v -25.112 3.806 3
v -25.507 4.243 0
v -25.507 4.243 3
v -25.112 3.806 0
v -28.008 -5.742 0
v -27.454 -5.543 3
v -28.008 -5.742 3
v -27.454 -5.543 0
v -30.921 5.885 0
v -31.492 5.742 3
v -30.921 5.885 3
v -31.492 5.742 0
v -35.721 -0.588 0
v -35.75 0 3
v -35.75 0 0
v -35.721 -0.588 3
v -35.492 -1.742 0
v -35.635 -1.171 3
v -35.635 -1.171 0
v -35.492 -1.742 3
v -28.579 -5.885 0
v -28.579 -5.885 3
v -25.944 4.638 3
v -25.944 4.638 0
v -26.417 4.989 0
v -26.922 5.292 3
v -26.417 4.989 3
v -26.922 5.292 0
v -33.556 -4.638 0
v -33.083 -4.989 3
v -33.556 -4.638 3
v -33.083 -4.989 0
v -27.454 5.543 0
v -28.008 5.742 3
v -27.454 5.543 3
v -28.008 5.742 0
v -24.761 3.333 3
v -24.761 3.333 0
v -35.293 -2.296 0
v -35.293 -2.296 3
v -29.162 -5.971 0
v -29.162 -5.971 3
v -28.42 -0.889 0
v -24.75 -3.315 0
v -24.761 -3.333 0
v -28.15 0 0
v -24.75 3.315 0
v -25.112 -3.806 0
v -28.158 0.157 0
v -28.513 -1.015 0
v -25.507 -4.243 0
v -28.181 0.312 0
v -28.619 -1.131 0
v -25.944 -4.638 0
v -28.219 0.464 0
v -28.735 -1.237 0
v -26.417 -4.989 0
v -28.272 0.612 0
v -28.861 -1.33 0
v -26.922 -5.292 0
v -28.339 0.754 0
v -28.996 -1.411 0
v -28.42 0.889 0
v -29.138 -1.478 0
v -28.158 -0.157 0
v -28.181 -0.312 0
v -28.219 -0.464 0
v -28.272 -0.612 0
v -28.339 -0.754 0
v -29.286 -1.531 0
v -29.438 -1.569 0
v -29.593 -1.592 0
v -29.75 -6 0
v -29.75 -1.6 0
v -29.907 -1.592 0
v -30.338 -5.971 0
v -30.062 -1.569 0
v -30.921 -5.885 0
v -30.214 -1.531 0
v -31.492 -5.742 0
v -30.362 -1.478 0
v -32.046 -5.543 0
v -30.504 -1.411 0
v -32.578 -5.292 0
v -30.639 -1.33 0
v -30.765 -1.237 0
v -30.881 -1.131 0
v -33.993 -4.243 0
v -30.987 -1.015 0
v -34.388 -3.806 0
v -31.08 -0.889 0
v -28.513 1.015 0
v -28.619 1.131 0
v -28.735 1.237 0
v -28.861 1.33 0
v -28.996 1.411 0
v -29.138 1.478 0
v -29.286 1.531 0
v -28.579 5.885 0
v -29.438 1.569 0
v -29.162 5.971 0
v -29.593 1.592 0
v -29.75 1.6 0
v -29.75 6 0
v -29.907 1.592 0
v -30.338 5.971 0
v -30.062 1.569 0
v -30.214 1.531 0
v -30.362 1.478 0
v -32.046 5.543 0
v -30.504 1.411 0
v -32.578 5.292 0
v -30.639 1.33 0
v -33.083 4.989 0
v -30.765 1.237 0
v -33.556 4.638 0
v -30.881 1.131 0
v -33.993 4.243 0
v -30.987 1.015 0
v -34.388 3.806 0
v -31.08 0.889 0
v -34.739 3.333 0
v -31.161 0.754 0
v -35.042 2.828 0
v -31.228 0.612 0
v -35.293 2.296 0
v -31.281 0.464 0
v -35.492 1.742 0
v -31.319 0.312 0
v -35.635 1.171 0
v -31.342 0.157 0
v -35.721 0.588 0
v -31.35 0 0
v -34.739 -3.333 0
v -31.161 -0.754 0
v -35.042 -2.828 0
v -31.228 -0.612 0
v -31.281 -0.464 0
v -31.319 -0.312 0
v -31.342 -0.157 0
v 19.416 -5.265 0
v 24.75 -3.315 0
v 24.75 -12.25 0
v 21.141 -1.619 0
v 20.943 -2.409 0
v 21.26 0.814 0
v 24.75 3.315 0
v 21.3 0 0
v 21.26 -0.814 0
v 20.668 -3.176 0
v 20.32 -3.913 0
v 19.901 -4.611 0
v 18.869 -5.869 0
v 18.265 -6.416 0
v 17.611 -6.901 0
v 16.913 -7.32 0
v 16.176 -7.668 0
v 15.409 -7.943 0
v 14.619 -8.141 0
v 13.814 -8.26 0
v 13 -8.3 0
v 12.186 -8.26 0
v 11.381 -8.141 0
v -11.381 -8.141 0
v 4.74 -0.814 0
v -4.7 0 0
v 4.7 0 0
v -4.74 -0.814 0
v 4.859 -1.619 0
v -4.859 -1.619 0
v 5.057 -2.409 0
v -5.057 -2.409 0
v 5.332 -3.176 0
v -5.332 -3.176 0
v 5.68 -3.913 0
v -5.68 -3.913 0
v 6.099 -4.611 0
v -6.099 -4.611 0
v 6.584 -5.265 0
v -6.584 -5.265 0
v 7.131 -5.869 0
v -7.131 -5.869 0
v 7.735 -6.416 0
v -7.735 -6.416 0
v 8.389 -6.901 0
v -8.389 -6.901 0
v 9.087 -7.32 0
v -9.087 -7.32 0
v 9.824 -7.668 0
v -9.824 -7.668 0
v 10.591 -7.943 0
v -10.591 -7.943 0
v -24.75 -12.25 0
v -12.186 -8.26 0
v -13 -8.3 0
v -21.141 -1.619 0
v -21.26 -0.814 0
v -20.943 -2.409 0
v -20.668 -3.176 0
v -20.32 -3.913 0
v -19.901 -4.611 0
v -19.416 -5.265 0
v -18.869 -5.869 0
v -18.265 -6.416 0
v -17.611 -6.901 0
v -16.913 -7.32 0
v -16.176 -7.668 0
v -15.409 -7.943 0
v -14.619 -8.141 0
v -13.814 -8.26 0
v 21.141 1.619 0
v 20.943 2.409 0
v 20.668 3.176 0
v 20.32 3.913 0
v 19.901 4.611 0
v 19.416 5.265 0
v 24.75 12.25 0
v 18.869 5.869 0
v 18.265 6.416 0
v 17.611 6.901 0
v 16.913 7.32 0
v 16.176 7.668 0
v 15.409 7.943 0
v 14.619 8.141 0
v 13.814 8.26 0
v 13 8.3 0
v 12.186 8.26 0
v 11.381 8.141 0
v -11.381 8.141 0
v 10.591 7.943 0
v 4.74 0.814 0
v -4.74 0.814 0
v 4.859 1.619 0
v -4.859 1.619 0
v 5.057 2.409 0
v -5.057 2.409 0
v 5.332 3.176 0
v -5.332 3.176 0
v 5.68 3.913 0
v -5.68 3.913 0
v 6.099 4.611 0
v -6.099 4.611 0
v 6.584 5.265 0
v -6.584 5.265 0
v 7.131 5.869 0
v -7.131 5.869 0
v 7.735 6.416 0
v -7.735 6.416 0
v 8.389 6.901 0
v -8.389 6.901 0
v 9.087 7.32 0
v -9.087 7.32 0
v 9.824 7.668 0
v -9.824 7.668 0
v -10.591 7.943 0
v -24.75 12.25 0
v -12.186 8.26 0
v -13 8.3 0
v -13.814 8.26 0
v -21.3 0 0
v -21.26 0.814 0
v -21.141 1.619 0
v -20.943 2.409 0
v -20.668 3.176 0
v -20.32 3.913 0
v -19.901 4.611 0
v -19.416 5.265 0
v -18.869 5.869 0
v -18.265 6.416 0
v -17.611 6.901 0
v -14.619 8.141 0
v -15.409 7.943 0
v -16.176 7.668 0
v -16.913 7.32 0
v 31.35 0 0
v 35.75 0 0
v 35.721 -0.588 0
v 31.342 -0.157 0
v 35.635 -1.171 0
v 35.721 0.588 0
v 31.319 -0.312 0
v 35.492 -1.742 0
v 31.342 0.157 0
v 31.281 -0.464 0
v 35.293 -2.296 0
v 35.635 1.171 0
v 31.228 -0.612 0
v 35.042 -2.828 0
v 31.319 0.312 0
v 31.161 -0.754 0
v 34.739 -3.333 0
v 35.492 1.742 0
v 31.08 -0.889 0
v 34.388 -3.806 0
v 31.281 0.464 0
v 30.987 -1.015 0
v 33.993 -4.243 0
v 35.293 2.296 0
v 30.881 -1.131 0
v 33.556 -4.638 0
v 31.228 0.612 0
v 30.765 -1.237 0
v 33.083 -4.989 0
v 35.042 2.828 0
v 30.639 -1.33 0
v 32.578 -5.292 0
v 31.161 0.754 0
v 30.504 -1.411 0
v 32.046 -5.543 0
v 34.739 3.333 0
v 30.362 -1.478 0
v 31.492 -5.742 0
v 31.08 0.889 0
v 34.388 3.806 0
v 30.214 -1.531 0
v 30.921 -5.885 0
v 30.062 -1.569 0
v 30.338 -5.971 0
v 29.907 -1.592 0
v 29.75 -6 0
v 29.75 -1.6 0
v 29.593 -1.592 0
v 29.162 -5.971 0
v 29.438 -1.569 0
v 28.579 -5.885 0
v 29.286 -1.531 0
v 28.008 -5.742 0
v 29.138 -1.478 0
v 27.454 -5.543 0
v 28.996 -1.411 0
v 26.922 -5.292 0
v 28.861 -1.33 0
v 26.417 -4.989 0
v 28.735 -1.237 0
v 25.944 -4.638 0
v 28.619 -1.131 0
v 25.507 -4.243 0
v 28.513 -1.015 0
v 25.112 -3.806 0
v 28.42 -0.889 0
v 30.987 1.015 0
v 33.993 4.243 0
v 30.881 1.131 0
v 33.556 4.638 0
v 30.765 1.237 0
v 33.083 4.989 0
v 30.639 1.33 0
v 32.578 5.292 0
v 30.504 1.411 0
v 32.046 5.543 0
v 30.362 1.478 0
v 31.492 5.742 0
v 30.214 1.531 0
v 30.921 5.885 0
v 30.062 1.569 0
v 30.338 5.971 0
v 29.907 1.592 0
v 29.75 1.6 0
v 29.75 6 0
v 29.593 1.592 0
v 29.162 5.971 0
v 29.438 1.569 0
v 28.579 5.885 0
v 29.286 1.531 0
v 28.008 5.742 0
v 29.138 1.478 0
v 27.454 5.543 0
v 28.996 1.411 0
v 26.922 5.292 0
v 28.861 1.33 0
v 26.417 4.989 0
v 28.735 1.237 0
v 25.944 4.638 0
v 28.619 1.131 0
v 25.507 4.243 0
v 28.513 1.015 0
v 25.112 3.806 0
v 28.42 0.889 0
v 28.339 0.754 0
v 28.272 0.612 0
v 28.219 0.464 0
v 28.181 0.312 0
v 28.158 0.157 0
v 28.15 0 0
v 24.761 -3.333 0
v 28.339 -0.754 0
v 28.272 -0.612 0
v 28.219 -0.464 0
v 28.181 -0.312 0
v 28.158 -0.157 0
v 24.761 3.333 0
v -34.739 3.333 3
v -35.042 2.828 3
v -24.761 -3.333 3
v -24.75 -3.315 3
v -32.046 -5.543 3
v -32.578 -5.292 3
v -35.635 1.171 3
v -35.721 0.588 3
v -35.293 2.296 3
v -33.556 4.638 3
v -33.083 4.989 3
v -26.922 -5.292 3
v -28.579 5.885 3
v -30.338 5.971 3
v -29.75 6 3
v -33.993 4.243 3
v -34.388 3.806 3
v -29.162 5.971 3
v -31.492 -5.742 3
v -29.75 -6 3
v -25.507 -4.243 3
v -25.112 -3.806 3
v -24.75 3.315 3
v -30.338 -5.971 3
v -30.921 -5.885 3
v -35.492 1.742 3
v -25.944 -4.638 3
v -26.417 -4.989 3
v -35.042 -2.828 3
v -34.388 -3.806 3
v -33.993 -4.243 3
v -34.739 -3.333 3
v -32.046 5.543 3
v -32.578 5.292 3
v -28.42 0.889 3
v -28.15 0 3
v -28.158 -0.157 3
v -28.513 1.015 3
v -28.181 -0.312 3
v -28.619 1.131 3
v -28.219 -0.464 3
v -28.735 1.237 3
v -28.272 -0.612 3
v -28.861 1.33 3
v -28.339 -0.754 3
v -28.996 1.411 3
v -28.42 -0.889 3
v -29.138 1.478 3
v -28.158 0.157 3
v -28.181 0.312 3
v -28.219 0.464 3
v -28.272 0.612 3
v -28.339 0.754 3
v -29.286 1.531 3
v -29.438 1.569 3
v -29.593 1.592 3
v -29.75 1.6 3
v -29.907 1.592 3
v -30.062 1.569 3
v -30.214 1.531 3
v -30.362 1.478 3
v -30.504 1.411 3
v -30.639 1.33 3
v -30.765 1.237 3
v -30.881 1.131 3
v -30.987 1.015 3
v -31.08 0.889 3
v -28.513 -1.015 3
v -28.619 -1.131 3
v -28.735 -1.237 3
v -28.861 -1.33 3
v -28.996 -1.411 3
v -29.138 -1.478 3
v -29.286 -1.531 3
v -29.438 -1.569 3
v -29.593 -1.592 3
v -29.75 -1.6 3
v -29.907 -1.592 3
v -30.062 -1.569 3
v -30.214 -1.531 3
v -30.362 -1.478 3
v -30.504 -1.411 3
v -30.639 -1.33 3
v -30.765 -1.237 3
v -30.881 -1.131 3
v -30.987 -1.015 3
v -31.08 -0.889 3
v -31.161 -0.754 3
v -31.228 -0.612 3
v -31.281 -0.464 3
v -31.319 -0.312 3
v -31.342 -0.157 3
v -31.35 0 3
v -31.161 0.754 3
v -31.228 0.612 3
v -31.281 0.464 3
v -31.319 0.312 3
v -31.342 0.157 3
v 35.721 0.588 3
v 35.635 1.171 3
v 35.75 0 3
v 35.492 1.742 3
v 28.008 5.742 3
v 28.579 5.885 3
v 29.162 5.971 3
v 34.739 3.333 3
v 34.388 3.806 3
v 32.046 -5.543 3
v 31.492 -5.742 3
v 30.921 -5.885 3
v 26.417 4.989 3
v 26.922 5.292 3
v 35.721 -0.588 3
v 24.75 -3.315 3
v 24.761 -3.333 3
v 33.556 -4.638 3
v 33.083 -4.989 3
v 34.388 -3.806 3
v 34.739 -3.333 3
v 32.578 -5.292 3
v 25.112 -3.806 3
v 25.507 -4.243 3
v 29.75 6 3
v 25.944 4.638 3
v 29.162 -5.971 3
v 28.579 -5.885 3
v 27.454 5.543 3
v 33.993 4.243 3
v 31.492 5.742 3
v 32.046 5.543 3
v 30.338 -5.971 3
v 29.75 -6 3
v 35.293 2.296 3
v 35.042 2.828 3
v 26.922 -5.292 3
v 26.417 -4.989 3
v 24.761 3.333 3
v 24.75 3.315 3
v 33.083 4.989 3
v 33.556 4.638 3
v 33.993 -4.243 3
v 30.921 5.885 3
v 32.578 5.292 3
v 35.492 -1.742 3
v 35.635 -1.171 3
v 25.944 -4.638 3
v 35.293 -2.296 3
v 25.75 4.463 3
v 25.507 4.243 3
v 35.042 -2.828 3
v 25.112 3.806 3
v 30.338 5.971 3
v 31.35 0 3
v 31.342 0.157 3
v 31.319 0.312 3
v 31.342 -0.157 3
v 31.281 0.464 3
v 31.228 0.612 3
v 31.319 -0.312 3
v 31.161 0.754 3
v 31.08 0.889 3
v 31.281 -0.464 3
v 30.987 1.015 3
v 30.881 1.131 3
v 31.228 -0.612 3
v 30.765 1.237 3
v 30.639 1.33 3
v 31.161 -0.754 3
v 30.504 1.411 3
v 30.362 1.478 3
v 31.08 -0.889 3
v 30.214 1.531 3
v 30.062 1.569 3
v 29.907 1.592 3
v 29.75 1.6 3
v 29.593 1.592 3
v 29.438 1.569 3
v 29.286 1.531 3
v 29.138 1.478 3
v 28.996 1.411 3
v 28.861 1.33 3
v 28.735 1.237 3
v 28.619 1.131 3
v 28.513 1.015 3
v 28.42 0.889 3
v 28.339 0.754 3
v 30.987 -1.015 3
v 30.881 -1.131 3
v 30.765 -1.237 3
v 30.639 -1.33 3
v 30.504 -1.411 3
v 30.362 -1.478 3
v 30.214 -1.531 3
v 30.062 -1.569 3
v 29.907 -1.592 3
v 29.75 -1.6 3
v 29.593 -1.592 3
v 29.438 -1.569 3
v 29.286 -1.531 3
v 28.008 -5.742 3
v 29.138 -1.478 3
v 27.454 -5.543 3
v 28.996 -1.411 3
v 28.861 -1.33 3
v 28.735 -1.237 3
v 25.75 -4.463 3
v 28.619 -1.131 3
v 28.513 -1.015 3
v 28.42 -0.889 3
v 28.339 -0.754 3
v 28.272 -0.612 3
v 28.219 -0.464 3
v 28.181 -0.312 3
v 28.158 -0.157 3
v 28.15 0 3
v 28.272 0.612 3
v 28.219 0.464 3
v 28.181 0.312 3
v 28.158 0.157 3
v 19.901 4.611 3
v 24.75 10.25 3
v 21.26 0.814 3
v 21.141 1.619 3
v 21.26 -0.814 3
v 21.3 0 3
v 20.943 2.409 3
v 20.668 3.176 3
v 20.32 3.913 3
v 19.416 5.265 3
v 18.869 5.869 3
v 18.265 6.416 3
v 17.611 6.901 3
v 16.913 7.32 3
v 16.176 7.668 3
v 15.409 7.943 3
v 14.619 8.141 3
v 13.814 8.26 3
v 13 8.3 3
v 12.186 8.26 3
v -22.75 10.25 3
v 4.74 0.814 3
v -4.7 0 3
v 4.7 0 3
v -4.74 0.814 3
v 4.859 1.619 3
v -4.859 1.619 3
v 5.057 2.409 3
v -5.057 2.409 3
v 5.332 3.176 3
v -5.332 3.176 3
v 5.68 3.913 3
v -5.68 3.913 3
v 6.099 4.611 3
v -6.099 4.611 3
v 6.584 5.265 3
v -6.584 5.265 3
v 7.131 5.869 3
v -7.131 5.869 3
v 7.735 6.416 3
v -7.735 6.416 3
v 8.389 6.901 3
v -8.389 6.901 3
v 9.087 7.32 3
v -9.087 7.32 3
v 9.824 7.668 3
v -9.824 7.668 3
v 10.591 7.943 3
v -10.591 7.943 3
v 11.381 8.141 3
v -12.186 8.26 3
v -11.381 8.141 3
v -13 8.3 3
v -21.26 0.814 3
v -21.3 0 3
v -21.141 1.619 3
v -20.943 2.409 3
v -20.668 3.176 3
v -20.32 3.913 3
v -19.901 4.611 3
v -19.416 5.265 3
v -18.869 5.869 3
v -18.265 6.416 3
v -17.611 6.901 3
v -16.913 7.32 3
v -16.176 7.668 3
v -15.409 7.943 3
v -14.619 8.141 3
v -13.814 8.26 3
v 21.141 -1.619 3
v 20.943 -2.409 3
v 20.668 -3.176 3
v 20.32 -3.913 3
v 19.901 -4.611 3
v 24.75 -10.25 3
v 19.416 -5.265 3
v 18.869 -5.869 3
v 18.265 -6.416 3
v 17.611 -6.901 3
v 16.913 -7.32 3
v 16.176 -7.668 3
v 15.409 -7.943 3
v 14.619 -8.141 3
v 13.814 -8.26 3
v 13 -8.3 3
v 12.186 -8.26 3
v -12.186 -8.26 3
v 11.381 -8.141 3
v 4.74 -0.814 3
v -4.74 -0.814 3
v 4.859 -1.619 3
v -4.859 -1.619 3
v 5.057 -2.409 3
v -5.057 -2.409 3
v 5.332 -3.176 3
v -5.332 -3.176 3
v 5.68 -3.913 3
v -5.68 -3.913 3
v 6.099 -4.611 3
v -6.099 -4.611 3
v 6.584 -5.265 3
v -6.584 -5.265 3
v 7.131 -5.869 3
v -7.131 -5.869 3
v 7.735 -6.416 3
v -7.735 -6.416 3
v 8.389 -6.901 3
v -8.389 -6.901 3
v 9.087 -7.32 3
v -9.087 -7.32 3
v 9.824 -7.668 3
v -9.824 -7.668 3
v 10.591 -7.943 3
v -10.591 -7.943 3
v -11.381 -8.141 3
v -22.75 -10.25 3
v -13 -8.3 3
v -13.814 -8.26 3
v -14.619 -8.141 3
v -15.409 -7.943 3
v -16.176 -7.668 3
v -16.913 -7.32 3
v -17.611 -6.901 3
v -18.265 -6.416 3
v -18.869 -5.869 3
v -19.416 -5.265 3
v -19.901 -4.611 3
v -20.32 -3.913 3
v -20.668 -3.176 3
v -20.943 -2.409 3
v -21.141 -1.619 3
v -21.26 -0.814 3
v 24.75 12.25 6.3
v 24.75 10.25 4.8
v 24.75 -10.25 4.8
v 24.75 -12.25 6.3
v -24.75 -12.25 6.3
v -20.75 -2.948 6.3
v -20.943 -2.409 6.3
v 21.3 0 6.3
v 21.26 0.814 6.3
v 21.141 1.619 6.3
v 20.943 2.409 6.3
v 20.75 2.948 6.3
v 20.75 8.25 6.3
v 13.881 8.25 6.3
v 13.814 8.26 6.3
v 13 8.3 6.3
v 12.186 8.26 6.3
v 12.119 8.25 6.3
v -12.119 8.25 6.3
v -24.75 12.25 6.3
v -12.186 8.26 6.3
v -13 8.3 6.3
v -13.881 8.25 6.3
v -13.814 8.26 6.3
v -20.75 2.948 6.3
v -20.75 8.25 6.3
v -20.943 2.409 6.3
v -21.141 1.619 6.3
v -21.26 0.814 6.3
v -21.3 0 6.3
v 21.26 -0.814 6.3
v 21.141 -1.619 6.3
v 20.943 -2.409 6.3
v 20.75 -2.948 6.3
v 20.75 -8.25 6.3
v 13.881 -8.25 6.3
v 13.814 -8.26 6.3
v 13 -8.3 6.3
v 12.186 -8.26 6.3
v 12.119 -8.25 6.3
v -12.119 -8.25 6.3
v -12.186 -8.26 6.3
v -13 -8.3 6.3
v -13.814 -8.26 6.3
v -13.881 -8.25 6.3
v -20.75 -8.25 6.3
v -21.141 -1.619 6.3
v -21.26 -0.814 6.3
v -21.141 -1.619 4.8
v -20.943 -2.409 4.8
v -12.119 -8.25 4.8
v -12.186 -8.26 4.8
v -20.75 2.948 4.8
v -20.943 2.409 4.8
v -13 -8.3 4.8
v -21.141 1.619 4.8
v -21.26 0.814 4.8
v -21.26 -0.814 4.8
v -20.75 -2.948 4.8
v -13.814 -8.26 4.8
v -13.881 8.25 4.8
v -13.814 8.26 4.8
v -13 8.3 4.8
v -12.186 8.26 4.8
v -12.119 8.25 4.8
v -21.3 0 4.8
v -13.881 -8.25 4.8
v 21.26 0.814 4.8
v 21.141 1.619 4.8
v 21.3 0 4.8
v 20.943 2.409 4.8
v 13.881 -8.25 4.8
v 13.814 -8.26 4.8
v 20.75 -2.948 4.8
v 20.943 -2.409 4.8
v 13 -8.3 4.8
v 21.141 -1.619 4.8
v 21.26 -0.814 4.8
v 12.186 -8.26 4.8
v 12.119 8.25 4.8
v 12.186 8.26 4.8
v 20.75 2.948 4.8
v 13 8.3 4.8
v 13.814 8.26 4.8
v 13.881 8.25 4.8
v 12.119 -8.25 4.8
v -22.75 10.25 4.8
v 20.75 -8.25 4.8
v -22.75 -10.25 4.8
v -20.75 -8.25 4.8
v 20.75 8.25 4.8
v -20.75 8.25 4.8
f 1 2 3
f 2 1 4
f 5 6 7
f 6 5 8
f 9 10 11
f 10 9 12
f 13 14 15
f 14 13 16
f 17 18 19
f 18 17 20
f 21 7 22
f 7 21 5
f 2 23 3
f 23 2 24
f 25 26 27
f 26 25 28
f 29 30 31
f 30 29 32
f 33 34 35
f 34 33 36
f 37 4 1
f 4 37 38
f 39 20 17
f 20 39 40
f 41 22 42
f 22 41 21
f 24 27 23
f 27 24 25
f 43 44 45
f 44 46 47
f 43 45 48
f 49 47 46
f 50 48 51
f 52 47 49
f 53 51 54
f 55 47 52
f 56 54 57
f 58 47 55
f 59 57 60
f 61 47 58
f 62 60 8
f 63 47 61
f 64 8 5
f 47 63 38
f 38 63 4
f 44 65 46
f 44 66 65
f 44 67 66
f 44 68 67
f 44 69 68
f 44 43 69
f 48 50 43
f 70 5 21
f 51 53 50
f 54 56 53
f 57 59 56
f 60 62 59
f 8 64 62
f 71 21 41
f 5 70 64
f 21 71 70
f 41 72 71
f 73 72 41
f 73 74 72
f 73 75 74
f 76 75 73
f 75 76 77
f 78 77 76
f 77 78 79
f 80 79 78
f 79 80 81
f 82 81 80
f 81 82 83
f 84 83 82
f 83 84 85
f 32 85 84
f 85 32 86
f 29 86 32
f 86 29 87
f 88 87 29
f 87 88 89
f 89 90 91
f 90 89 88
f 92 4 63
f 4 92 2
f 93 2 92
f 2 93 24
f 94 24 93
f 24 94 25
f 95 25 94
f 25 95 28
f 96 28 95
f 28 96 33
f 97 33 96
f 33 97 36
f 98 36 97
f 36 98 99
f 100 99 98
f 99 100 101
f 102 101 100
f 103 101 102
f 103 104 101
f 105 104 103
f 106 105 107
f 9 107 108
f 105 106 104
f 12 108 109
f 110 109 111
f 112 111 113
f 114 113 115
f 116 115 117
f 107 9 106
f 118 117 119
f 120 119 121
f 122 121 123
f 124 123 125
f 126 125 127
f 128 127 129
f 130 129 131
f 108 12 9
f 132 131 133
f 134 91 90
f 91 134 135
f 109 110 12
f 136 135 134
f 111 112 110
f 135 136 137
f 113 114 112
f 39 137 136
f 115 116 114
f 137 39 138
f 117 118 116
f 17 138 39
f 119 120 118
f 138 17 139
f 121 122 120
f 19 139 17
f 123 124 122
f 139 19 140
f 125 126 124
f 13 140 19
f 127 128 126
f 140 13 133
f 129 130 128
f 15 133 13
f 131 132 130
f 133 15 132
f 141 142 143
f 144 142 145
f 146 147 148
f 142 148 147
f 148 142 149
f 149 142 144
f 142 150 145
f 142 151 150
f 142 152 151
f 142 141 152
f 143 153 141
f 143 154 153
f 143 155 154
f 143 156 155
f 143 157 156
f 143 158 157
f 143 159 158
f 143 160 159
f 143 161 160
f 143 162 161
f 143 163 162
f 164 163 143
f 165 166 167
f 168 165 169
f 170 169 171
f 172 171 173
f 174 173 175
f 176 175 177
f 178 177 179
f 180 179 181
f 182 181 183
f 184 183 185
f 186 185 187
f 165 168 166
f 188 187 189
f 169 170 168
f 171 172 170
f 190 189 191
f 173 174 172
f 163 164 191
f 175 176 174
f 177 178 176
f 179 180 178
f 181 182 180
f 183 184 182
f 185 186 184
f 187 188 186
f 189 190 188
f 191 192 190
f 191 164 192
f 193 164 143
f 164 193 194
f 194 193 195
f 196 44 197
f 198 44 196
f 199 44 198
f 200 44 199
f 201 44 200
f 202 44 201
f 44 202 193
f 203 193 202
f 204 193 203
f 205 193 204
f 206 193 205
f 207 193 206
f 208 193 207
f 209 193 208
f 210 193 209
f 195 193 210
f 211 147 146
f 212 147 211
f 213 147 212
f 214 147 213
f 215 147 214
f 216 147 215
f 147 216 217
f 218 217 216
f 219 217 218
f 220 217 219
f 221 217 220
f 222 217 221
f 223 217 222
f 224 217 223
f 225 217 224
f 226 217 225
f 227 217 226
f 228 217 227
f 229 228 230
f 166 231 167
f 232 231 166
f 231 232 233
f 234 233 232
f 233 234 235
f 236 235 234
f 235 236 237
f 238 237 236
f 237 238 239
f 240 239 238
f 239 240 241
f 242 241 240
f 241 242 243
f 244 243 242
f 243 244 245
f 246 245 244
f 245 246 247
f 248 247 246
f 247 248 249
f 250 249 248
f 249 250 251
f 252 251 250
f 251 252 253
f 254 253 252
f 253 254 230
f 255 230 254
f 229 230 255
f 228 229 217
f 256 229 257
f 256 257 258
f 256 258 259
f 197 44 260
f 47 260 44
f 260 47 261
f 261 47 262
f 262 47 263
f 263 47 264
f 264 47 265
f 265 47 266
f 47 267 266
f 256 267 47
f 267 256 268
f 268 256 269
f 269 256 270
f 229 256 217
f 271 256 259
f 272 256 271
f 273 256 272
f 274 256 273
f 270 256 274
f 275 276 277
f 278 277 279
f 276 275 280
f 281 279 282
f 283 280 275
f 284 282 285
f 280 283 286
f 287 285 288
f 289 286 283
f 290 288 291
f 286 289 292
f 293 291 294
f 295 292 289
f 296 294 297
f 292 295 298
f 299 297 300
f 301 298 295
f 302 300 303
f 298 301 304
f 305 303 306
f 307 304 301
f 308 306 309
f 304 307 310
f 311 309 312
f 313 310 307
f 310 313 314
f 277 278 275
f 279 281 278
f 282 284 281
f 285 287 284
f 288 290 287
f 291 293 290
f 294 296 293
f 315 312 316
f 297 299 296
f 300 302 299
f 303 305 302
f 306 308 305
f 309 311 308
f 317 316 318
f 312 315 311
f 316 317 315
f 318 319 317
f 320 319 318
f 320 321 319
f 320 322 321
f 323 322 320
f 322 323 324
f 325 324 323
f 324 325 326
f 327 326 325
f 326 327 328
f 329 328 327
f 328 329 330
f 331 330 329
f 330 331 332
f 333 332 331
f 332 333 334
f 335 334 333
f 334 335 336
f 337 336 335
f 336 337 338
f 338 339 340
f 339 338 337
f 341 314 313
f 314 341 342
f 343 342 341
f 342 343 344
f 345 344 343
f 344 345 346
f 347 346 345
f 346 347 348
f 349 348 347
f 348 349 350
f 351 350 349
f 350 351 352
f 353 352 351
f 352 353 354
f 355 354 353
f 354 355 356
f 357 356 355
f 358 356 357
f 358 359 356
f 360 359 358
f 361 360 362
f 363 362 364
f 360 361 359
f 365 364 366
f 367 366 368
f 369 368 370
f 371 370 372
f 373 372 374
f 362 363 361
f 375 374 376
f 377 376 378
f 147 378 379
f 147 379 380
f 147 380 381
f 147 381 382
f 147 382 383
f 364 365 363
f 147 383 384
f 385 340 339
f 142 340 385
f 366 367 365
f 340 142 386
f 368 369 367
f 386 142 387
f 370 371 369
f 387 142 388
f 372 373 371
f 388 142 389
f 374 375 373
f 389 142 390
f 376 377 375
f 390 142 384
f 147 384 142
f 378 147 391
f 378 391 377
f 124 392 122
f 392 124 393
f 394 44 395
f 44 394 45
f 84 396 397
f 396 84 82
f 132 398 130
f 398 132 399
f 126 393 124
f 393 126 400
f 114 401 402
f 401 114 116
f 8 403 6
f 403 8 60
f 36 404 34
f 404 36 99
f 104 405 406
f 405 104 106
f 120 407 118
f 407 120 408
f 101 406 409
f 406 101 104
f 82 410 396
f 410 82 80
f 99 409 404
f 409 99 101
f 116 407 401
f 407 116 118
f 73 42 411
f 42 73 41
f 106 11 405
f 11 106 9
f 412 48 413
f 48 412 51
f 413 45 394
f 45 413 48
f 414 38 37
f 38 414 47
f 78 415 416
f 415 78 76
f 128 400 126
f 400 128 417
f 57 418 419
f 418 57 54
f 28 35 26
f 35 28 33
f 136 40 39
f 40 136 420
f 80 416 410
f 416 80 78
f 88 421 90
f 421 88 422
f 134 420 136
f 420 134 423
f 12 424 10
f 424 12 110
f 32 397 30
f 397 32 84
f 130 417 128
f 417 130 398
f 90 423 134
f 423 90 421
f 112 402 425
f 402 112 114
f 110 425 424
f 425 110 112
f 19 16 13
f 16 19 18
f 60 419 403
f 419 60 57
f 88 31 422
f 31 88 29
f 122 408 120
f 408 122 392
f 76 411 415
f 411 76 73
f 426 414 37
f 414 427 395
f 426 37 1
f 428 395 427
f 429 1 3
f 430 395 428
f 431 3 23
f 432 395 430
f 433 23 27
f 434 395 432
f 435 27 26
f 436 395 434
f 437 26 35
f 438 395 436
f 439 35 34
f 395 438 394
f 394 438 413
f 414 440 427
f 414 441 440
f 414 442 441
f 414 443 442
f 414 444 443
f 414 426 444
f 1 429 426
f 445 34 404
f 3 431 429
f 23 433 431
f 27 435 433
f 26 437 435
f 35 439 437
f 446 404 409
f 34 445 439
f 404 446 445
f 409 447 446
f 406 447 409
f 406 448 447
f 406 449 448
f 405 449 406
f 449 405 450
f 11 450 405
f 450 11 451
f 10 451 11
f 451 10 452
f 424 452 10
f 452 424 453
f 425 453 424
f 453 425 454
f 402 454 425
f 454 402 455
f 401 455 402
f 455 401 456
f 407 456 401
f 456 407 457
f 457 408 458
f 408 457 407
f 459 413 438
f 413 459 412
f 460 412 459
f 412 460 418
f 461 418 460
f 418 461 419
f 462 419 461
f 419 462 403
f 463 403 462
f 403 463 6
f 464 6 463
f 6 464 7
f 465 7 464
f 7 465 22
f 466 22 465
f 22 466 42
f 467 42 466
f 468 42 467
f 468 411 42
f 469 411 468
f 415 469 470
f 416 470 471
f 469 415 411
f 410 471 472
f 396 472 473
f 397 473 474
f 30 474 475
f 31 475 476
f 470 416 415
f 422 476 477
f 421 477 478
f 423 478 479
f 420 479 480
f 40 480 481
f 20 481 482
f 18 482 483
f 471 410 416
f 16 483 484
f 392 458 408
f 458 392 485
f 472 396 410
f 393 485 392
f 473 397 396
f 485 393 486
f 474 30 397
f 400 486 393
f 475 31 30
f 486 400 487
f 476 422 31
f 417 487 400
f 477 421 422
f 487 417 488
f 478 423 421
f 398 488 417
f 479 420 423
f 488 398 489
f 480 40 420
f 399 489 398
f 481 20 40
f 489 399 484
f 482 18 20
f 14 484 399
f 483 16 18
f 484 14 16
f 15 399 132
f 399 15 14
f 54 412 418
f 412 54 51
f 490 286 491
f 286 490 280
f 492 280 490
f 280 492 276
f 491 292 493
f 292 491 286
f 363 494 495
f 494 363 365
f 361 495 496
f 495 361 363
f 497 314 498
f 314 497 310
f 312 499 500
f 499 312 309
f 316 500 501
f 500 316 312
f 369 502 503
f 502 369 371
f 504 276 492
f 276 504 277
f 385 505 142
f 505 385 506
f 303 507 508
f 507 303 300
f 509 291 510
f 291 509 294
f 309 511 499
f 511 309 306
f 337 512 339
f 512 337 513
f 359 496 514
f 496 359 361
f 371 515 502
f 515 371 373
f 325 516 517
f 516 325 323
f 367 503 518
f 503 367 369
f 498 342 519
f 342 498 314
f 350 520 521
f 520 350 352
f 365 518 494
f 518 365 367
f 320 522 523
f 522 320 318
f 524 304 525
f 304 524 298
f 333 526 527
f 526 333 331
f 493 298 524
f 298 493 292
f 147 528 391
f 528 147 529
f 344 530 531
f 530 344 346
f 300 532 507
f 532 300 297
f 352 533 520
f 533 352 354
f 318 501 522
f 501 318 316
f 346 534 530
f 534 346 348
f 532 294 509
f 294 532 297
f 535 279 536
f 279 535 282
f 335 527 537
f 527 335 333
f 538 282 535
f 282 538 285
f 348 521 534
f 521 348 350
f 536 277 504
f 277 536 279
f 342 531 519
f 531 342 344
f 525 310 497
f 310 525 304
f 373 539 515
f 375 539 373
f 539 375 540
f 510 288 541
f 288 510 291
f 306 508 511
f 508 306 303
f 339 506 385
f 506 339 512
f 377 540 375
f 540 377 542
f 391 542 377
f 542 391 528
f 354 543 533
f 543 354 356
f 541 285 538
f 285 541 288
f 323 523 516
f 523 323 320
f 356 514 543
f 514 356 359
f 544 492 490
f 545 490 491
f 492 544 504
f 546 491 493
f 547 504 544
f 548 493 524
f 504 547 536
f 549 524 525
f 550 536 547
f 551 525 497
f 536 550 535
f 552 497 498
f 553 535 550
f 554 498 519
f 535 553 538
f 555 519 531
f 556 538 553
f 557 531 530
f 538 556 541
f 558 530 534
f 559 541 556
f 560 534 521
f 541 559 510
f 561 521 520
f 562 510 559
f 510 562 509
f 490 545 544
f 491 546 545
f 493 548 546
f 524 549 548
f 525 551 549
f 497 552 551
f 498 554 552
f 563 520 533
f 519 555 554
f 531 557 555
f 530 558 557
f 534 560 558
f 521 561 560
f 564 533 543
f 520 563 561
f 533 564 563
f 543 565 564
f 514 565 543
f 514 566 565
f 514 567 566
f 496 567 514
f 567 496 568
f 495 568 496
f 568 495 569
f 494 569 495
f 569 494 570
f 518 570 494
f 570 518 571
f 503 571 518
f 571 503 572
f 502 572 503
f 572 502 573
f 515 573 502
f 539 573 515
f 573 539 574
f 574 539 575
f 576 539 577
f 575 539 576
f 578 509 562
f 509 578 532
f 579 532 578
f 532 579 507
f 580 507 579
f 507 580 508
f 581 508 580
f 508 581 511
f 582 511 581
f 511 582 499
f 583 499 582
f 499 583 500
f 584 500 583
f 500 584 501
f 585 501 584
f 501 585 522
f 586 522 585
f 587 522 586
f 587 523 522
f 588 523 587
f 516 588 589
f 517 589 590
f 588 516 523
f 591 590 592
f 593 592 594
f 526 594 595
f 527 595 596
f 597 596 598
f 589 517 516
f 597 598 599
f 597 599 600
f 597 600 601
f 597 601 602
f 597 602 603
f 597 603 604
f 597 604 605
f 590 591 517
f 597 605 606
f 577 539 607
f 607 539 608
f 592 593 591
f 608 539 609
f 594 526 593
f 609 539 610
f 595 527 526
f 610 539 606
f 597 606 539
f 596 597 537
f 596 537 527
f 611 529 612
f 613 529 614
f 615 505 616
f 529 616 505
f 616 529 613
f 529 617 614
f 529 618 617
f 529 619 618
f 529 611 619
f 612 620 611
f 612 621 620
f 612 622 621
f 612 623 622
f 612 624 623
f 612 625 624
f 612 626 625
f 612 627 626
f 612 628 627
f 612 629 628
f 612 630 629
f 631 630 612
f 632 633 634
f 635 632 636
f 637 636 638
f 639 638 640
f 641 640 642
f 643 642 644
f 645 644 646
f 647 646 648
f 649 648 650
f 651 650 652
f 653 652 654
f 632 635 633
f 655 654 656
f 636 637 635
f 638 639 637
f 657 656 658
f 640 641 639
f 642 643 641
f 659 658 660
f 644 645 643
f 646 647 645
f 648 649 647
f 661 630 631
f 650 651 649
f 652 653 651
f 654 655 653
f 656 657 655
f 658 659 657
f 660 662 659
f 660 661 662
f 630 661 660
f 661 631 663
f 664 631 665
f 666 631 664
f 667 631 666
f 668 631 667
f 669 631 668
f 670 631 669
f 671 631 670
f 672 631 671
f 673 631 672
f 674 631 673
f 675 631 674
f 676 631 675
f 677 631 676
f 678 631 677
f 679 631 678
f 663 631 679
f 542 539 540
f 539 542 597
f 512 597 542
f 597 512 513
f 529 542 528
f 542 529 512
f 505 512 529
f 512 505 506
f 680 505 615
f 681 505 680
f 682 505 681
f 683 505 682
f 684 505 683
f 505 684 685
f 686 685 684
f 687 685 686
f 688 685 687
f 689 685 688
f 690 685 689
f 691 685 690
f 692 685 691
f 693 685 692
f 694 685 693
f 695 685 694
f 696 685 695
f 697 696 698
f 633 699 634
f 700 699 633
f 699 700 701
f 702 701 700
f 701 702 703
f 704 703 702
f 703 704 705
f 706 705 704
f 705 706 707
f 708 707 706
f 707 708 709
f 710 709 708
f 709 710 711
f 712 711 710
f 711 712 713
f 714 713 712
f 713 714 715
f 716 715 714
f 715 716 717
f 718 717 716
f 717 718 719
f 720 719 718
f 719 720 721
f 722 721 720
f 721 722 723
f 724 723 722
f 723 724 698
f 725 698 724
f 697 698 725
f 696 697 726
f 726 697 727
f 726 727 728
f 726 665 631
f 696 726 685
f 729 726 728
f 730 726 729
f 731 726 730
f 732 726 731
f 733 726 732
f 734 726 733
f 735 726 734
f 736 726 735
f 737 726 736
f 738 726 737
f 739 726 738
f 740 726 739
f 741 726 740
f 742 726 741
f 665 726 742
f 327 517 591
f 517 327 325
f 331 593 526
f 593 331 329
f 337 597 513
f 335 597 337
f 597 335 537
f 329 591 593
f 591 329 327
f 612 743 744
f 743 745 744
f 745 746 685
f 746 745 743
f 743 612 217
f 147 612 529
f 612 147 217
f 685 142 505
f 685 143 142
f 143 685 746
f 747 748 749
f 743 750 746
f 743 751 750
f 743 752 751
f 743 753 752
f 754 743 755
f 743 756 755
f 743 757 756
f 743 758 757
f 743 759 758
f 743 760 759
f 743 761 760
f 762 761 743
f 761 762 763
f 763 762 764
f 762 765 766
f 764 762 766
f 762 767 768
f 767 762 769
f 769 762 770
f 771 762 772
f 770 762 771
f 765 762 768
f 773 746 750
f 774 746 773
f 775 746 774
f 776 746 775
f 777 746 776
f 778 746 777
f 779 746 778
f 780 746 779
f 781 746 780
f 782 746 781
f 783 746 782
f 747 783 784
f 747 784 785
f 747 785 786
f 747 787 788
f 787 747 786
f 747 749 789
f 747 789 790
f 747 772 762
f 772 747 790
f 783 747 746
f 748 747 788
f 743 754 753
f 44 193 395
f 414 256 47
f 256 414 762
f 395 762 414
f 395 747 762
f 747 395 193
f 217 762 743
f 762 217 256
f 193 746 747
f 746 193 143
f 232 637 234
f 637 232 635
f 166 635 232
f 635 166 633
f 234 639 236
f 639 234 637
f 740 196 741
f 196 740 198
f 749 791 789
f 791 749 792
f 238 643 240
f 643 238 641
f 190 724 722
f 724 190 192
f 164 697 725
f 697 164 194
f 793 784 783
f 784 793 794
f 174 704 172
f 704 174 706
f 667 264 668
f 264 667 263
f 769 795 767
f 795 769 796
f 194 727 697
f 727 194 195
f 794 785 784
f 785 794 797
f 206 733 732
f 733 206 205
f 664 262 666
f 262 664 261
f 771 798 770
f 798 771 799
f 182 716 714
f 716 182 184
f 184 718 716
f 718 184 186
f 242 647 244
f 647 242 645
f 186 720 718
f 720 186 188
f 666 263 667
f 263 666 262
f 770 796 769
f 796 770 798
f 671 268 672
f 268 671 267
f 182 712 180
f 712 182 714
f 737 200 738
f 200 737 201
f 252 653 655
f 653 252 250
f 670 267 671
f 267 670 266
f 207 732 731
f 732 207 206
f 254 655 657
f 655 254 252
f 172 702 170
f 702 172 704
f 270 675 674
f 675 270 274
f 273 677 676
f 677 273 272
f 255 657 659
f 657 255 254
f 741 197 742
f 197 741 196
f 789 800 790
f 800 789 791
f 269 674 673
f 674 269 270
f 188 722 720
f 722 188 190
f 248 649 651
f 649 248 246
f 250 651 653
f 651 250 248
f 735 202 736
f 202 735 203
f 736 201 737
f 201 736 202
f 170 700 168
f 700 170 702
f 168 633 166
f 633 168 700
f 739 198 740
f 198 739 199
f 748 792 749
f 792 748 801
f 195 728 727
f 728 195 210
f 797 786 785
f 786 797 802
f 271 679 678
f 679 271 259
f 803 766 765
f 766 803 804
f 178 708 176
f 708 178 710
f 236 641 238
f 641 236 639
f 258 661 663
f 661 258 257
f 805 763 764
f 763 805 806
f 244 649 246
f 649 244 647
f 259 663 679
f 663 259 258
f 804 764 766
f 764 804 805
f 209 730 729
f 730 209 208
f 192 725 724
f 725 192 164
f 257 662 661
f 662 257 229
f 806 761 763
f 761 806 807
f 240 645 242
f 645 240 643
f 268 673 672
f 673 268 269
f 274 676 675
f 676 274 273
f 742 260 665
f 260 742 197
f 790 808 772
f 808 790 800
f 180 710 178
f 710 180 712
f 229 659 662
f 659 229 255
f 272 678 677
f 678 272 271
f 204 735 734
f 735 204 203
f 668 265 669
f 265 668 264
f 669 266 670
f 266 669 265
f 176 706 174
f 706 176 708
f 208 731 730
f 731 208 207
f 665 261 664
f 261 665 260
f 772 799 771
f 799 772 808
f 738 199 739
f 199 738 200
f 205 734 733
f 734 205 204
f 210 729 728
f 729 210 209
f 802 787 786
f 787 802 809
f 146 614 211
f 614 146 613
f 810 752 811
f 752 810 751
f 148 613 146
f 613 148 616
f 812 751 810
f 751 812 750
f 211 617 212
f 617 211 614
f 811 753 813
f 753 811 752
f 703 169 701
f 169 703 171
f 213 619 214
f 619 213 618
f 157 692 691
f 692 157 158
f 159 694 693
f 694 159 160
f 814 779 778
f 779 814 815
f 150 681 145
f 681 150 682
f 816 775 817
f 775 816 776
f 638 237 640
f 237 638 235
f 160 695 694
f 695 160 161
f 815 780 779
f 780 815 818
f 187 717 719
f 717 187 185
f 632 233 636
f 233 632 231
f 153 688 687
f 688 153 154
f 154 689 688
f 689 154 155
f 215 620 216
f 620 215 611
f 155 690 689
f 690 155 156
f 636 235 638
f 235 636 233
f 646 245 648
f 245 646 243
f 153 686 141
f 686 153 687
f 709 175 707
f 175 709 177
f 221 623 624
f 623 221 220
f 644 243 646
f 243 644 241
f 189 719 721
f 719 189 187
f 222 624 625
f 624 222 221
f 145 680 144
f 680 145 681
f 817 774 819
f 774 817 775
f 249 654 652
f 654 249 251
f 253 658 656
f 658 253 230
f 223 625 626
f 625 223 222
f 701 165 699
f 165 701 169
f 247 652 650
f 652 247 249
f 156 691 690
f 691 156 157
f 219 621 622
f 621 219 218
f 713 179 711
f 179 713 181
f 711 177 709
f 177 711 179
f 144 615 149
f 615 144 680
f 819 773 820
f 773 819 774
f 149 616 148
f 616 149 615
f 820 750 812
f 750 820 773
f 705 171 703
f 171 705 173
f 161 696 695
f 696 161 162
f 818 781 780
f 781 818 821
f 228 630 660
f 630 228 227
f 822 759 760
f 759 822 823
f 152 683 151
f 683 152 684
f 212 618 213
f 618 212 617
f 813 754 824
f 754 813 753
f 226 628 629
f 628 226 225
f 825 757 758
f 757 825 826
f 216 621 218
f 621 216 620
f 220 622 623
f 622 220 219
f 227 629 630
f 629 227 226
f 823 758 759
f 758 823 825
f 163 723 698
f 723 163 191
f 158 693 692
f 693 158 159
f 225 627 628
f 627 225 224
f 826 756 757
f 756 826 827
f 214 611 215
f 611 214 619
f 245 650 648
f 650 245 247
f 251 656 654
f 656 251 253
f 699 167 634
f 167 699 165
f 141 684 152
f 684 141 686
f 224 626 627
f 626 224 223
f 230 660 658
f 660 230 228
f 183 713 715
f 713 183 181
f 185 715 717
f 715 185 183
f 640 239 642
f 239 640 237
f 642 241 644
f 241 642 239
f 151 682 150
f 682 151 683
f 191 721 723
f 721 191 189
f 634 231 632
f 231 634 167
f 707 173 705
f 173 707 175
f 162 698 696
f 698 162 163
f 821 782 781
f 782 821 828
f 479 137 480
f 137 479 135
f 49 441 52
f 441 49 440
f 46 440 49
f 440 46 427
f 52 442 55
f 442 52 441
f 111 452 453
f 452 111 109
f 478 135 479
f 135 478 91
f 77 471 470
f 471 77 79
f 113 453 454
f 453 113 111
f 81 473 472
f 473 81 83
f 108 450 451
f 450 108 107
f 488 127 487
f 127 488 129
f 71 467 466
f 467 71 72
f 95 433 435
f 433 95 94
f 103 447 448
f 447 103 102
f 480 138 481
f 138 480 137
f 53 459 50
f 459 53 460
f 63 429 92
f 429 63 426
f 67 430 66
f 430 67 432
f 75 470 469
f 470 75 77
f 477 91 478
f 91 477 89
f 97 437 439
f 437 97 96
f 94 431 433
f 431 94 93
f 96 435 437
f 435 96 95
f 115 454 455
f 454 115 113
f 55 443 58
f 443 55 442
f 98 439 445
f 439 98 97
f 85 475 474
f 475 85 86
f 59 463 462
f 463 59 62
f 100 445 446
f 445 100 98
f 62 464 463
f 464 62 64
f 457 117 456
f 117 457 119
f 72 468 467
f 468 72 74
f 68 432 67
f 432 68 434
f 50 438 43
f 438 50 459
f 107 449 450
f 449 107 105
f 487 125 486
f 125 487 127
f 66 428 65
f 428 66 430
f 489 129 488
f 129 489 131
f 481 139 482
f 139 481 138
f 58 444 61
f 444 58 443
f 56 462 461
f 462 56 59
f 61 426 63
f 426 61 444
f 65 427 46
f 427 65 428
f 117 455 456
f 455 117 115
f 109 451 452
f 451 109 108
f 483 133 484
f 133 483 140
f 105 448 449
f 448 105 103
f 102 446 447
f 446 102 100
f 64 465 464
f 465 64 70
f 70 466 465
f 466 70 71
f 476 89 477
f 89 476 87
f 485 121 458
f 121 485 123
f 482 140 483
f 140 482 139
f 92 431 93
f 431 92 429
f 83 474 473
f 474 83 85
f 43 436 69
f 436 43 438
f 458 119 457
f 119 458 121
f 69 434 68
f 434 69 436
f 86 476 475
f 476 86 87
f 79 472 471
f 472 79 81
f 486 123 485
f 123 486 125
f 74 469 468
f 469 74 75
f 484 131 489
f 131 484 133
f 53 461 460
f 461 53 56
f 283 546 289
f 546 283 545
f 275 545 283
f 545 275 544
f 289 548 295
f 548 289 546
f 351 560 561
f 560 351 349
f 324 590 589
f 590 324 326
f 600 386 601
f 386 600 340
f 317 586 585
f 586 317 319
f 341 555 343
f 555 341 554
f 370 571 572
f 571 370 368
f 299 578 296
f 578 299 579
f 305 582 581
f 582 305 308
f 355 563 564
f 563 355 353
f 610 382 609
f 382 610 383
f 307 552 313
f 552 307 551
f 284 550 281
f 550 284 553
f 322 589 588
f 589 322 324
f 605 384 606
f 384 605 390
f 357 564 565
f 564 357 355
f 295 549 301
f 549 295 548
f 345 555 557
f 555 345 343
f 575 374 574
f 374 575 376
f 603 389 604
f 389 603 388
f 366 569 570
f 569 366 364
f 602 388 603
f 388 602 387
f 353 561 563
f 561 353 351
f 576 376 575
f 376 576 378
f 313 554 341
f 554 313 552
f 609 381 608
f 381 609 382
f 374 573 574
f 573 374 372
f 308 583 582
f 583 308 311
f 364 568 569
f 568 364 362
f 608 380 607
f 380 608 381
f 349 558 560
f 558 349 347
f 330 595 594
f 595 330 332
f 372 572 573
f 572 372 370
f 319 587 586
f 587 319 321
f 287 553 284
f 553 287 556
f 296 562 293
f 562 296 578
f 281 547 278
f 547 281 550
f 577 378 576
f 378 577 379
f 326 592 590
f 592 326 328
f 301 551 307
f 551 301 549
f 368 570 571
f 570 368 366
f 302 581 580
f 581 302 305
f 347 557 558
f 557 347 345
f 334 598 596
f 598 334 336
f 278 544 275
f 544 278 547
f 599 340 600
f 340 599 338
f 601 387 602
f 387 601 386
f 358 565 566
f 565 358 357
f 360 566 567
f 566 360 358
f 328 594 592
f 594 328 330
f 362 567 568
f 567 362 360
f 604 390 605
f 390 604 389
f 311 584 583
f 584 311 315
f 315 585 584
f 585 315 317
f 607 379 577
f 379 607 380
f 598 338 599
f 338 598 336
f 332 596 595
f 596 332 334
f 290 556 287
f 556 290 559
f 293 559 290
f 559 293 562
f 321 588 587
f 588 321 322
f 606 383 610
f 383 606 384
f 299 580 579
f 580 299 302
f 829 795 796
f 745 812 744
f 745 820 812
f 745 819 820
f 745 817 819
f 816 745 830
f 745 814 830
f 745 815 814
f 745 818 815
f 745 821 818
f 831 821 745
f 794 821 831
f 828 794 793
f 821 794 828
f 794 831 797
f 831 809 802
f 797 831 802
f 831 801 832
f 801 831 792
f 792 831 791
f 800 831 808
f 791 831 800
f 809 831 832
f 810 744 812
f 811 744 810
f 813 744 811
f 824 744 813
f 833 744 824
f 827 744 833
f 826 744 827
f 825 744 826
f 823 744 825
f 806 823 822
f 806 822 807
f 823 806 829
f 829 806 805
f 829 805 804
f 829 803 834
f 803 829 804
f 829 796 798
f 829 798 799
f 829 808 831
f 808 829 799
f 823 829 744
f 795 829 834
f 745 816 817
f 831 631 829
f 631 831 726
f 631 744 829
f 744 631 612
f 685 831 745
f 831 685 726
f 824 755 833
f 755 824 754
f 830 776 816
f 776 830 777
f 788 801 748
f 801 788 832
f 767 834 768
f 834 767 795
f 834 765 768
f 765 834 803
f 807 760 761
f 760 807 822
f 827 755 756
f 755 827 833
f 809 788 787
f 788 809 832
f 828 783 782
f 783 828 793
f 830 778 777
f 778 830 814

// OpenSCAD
// HC-SR04 holder that sits ON the ceiling bridge above a parking spot; the sensor looks DOWN through two
// 17 mm holes in the bridge (the screw ears are on the sensor side, see 3d/sklop/sklop_makete.scad).
// The board (45 x 20 mm) slides in from the side; two screws fix the holder to the bridge.
// Print flat, no supports.
board_l = 45.5; board_w = 20.5; board_t = 1.8;
eye_d = 16.6; eye_pitch = 26;     // transducer diameter and centre distance
wall = 2; $fn = 64;

module nosac_hcsr04() {
    difference() {
        union() {
            translate([-board_l / 2 - wall, -board_w / 2 - wall, 0]) cube([board_l + 2 * wall, board_w + 2 * wall, 3 + board_t + 1.5]);
            // mounting ears
            for (s = [-1, 1]) translate([s * (board_l / 2 + wall + 5), 0, 0]) cylinder(d = 12, h = 3);
        }
        // transducers through the bottom
        for (s = [-1, 1]) translate([s * eye_pitch / 2, 0, -1]) cylinder(d = eye_d, h = 10);
        // board slot (open on one side so the pin header can stick out)
        translate([-board_l / 2, -board_w / 2, 3]) cube([board_l + wall + 1, board_w, board_t]);
        // space for components / crystal above the board
        translate([-board_l / 2 + 2, -board_w / 2 + 2, 3]) cube([board_l - 4, board_w - 4, 10]);
        for (s = [-1, 1]) translate([s * (board_l / 2 + wall + 5), 0, -1]) cylinder(d = 3.2, h = 5);
    }
}

nosac_hcsr04();
